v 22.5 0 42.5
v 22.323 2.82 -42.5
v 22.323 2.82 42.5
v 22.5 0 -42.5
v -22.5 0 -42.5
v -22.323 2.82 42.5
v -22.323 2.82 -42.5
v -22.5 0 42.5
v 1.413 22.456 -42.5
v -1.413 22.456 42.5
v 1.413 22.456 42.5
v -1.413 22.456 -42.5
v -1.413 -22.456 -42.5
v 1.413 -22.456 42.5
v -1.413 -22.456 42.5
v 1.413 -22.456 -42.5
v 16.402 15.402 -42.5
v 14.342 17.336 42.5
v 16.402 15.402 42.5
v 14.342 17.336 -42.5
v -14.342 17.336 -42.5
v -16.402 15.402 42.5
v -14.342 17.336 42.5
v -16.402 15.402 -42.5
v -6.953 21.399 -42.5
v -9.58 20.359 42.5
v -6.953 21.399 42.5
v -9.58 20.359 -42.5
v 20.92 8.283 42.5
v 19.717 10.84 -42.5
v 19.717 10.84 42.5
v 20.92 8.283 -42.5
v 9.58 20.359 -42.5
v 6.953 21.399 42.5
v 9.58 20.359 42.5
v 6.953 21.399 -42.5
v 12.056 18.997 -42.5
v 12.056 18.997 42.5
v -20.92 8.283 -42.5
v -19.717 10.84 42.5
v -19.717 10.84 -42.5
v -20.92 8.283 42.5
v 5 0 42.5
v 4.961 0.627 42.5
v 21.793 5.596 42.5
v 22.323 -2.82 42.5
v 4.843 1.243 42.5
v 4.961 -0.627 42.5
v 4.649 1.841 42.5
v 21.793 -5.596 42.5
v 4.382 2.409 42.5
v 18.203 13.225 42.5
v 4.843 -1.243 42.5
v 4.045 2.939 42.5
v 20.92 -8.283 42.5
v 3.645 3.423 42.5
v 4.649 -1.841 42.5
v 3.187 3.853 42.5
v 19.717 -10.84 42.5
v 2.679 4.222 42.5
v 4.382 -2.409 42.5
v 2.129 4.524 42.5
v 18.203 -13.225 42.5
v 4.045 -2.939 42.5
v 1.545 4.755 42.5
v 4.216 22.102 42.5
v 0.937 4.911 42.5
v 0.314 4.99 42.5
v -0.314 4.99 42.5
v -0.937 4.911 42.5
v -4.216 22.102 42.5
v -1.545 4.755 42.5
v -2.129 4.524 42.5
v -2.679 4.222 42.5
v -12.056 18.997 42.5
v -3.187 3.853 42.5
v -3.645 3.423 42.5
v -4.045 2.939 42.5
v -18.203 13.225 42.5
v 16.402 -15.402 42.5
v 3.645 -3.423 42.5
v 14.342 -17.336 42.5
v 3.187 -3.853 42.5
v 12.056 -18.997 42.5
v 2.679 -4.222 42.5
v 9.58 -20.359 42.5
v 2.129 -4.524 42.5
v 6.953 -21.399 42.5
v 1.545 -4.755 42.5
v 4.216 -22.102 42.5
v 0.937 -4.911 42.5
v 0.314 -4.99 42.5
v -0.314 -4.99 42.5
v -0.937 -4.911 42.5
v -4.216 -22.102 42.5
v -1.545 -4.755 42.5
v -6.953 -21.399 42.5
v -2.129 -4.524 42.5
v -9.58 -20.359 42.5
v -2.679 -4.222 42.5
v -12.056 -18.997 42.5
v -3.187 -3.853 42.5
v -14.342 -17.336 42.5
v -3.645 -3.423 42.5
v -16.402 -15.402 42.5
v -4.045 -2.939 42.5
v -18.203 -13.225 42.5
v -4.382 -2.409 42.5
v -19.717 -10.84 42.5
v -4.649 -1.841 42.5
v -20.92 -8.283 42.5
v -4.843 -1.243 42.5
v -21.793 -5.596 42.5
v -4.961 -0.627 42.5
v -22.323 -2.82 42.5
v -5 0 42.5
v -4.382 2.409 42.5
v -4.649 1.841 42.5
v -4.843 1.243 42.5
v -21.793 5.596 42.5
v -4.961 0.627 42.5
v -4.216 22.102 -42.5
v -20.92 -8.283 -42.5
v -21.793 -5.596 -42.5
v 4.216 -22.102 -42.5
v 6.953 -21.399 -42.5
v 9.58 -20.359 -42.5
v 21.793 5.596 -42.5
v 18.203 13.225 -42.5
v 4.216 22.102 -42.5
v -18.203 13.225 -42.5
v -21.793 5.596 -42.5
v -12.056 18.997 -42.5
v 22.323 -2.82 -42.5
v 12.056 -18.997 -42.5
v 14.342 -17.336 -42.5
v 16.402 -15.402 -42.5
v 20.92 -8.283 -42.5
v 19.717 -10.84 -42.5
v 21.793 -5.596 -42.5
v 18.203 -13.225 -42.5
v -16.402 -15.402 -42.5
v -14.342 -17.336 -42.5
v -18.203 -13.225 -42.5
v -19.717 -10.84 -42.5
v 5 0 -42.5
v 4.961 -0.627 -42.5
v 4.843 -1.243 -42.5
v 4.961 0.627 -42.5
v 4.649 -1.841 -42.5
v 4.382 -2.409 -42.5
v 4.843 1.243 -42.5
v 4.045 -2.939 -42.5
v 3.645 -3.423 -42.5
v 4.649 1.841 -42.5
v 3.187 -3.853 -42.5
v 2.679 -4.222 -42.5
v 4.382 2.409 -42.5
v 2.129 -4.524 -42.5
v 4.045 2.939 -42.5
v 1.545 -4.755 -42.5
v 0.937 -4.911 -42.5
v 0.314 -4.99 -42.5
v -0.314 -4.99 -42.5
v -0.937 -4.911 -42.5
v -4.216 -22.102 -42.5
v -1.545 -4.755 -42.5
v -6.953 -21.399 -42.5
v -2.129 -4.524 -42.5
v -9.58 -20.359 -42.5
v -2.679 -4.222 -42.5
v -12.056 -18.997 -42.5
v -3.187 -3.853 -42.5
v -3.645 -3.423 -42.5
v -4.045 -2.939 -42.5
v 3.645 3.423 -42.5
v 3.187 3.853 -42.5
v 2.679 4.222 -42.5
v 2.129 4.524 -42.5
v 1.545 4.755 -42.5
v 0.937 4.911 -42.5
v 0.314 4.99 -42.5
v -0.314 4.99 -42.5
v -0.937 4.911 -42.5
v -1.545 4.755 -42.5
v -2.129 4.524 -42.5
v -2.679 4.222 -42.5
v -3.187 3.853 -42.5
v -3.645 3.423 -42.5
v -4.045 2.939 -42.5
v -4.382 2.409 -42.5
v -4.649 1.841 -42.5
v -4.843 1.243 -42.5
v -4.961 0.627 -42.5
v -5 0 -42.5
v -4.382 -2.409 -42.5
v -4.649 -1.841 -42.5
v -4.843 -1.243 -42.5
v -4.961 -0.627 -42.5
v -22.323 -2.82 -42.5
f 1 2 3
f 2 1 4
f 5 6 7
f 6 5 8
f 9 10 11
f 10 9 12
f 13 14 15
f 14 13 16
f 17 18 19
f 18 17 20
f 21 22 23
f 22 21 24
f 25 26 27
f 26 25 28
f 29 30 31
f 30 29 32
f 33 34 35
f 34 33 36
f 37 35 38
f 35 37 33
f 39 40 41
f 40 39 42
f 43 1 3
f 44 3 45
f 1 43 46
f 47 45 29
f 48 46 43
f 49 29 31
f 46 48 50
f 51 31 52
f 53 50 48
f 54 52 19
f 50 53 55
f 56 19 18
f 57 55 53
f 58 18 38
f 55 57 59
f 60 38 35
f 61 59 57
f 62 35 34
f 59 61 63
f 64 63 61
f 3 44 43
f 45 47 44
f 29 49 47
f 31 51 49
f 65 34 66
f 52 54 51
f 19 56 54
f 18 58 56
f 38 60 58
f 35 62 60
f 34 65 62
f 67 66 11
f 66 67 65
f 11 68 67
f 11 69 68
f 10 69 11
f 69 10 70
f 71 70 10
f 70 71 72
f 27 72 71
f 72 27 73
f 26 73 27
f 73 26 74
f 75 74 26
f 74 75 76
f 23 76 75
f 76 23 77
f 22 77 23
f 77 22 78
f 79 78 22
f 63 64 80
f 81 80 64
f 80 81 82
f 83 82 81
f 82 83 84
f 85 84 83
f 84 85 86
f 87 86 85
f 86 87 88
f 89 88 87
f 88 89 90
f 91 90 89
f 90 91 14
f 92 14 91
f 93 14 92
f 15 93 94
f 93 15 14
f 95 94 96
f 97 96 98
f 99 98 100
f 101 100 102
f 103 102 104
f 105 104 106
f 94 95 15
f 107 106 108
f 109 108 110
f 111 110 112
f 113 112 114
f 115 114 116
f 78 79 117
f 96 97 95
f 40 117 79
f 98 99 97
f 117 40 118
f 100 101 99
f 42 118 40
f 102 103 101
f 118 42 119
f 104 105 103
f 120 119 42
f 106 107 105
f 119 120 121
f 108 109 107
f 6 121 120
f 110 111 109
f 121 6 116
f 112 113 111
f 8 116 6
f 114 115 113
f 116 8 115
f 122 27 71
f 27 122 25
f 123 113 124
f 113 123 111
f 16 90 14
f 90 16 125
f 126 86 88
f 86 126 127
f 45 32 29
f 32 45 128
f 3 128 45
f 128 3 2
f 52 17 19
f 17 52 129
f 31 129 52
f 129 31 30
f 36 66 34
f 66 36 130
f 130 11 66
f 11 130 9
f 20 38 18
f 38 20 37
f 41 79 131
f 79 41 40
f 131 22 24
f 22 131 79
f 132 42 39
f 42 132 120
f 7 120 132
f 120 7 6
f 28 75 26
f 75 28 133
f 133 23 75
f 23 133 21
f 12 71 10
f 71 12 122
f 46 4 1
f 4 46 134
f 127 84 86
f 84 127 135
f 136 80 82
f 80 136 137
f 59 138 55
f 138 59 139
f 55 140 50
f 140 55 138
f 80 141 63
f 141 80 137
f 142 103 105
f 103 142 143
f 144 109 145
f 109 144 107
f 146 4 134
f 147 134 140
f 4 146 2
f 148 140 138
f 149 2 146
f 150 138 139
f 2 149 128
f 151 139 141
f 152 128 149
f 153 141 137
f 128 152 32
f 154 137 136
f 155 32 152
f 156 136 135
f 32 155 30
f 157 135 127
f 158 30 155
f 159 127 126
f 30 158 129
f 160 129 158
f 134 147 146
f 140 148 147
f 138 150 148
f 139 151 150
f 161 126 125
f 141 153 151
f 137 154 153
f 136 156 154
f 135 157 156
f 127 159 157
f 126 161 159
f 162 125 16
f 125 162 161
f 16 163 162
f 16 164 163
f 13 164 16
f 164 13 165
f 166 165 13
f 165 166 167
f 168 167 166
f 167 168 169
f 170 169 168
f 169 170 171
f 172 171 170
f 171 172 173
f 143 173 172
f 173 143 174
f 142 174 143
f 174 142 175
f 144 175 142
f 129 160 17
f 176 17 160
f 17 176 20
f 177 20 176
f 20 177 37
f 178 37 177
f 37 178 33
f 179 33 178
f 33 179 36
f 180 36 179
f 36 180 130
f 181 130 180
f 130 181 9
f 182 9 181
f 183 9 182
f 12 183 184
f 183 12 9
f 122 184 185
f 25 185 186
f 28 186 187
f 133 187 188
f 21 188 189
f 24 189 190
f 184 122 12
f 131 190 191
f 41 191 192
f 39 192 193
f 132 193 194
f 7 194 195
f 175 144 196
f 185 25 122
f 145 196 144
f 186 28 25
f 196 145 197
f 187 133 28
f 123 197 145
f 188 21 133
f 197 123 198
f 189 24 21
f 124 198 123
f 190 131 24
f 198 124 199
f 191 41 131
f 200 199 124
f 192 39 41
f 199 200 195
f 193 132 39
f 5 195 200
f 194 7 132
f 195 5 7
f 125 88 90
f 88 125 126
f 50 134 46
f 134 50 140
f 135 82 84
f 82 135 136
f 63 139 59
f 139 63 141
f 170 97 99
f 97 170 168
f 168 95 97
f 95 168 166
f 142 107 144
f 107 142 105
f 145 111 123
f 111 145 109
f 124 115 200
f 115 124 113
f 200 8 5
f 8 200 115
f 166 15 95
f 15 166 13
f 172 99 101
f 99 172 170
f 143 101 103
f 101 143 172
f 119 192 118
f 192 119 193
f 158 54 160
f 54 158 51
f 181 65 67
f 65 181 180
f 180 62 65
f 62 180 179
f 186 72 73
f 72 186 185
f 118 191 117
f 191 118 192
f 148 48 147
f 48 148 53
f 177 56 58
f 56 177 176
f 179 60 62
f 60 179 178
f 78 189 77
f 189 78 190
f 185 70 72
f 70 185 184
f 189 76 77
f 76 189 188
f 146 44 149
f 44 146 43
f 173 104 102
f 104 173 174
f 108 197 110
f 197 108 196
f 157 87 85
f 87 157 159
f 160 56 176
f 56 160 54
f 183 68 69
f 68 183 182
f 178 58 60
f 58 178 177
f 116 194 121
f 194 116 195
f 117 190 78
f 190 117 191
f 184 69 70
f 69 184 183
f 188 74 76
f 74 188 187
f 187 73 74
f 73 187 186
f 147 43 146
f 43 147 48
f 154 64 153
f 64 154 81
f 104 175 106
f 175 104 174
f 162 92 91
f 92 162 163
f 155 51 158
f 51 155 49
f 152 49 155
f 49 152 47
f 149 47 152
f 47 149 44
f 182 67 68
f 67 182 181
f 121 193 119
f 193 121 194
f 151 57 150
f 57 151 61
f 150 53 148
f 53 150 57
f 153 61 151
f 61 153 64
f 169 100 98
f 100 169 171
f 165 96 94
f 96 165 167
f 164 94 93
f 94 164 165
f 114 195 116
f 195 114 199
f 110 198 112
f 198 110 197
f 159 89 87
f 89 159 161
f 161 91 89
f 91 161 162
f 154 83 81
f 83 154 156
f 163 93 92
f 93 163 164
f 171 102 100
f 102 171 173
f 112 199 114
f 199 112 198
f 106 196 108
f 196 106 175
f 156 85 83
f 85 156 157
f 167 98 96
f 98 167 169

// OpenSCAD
$fn = 50;


difference() {
	union() {
		translate(v = [0, 0, -42.5000000000]) {
			cylinder(h = 85, r = 22.5000000000);
		}
	}
	union() {
		translate(v = [0, 0, -100.0000000000]) {
			cylinder(h = 200, r = 5);
		}
	}
}
